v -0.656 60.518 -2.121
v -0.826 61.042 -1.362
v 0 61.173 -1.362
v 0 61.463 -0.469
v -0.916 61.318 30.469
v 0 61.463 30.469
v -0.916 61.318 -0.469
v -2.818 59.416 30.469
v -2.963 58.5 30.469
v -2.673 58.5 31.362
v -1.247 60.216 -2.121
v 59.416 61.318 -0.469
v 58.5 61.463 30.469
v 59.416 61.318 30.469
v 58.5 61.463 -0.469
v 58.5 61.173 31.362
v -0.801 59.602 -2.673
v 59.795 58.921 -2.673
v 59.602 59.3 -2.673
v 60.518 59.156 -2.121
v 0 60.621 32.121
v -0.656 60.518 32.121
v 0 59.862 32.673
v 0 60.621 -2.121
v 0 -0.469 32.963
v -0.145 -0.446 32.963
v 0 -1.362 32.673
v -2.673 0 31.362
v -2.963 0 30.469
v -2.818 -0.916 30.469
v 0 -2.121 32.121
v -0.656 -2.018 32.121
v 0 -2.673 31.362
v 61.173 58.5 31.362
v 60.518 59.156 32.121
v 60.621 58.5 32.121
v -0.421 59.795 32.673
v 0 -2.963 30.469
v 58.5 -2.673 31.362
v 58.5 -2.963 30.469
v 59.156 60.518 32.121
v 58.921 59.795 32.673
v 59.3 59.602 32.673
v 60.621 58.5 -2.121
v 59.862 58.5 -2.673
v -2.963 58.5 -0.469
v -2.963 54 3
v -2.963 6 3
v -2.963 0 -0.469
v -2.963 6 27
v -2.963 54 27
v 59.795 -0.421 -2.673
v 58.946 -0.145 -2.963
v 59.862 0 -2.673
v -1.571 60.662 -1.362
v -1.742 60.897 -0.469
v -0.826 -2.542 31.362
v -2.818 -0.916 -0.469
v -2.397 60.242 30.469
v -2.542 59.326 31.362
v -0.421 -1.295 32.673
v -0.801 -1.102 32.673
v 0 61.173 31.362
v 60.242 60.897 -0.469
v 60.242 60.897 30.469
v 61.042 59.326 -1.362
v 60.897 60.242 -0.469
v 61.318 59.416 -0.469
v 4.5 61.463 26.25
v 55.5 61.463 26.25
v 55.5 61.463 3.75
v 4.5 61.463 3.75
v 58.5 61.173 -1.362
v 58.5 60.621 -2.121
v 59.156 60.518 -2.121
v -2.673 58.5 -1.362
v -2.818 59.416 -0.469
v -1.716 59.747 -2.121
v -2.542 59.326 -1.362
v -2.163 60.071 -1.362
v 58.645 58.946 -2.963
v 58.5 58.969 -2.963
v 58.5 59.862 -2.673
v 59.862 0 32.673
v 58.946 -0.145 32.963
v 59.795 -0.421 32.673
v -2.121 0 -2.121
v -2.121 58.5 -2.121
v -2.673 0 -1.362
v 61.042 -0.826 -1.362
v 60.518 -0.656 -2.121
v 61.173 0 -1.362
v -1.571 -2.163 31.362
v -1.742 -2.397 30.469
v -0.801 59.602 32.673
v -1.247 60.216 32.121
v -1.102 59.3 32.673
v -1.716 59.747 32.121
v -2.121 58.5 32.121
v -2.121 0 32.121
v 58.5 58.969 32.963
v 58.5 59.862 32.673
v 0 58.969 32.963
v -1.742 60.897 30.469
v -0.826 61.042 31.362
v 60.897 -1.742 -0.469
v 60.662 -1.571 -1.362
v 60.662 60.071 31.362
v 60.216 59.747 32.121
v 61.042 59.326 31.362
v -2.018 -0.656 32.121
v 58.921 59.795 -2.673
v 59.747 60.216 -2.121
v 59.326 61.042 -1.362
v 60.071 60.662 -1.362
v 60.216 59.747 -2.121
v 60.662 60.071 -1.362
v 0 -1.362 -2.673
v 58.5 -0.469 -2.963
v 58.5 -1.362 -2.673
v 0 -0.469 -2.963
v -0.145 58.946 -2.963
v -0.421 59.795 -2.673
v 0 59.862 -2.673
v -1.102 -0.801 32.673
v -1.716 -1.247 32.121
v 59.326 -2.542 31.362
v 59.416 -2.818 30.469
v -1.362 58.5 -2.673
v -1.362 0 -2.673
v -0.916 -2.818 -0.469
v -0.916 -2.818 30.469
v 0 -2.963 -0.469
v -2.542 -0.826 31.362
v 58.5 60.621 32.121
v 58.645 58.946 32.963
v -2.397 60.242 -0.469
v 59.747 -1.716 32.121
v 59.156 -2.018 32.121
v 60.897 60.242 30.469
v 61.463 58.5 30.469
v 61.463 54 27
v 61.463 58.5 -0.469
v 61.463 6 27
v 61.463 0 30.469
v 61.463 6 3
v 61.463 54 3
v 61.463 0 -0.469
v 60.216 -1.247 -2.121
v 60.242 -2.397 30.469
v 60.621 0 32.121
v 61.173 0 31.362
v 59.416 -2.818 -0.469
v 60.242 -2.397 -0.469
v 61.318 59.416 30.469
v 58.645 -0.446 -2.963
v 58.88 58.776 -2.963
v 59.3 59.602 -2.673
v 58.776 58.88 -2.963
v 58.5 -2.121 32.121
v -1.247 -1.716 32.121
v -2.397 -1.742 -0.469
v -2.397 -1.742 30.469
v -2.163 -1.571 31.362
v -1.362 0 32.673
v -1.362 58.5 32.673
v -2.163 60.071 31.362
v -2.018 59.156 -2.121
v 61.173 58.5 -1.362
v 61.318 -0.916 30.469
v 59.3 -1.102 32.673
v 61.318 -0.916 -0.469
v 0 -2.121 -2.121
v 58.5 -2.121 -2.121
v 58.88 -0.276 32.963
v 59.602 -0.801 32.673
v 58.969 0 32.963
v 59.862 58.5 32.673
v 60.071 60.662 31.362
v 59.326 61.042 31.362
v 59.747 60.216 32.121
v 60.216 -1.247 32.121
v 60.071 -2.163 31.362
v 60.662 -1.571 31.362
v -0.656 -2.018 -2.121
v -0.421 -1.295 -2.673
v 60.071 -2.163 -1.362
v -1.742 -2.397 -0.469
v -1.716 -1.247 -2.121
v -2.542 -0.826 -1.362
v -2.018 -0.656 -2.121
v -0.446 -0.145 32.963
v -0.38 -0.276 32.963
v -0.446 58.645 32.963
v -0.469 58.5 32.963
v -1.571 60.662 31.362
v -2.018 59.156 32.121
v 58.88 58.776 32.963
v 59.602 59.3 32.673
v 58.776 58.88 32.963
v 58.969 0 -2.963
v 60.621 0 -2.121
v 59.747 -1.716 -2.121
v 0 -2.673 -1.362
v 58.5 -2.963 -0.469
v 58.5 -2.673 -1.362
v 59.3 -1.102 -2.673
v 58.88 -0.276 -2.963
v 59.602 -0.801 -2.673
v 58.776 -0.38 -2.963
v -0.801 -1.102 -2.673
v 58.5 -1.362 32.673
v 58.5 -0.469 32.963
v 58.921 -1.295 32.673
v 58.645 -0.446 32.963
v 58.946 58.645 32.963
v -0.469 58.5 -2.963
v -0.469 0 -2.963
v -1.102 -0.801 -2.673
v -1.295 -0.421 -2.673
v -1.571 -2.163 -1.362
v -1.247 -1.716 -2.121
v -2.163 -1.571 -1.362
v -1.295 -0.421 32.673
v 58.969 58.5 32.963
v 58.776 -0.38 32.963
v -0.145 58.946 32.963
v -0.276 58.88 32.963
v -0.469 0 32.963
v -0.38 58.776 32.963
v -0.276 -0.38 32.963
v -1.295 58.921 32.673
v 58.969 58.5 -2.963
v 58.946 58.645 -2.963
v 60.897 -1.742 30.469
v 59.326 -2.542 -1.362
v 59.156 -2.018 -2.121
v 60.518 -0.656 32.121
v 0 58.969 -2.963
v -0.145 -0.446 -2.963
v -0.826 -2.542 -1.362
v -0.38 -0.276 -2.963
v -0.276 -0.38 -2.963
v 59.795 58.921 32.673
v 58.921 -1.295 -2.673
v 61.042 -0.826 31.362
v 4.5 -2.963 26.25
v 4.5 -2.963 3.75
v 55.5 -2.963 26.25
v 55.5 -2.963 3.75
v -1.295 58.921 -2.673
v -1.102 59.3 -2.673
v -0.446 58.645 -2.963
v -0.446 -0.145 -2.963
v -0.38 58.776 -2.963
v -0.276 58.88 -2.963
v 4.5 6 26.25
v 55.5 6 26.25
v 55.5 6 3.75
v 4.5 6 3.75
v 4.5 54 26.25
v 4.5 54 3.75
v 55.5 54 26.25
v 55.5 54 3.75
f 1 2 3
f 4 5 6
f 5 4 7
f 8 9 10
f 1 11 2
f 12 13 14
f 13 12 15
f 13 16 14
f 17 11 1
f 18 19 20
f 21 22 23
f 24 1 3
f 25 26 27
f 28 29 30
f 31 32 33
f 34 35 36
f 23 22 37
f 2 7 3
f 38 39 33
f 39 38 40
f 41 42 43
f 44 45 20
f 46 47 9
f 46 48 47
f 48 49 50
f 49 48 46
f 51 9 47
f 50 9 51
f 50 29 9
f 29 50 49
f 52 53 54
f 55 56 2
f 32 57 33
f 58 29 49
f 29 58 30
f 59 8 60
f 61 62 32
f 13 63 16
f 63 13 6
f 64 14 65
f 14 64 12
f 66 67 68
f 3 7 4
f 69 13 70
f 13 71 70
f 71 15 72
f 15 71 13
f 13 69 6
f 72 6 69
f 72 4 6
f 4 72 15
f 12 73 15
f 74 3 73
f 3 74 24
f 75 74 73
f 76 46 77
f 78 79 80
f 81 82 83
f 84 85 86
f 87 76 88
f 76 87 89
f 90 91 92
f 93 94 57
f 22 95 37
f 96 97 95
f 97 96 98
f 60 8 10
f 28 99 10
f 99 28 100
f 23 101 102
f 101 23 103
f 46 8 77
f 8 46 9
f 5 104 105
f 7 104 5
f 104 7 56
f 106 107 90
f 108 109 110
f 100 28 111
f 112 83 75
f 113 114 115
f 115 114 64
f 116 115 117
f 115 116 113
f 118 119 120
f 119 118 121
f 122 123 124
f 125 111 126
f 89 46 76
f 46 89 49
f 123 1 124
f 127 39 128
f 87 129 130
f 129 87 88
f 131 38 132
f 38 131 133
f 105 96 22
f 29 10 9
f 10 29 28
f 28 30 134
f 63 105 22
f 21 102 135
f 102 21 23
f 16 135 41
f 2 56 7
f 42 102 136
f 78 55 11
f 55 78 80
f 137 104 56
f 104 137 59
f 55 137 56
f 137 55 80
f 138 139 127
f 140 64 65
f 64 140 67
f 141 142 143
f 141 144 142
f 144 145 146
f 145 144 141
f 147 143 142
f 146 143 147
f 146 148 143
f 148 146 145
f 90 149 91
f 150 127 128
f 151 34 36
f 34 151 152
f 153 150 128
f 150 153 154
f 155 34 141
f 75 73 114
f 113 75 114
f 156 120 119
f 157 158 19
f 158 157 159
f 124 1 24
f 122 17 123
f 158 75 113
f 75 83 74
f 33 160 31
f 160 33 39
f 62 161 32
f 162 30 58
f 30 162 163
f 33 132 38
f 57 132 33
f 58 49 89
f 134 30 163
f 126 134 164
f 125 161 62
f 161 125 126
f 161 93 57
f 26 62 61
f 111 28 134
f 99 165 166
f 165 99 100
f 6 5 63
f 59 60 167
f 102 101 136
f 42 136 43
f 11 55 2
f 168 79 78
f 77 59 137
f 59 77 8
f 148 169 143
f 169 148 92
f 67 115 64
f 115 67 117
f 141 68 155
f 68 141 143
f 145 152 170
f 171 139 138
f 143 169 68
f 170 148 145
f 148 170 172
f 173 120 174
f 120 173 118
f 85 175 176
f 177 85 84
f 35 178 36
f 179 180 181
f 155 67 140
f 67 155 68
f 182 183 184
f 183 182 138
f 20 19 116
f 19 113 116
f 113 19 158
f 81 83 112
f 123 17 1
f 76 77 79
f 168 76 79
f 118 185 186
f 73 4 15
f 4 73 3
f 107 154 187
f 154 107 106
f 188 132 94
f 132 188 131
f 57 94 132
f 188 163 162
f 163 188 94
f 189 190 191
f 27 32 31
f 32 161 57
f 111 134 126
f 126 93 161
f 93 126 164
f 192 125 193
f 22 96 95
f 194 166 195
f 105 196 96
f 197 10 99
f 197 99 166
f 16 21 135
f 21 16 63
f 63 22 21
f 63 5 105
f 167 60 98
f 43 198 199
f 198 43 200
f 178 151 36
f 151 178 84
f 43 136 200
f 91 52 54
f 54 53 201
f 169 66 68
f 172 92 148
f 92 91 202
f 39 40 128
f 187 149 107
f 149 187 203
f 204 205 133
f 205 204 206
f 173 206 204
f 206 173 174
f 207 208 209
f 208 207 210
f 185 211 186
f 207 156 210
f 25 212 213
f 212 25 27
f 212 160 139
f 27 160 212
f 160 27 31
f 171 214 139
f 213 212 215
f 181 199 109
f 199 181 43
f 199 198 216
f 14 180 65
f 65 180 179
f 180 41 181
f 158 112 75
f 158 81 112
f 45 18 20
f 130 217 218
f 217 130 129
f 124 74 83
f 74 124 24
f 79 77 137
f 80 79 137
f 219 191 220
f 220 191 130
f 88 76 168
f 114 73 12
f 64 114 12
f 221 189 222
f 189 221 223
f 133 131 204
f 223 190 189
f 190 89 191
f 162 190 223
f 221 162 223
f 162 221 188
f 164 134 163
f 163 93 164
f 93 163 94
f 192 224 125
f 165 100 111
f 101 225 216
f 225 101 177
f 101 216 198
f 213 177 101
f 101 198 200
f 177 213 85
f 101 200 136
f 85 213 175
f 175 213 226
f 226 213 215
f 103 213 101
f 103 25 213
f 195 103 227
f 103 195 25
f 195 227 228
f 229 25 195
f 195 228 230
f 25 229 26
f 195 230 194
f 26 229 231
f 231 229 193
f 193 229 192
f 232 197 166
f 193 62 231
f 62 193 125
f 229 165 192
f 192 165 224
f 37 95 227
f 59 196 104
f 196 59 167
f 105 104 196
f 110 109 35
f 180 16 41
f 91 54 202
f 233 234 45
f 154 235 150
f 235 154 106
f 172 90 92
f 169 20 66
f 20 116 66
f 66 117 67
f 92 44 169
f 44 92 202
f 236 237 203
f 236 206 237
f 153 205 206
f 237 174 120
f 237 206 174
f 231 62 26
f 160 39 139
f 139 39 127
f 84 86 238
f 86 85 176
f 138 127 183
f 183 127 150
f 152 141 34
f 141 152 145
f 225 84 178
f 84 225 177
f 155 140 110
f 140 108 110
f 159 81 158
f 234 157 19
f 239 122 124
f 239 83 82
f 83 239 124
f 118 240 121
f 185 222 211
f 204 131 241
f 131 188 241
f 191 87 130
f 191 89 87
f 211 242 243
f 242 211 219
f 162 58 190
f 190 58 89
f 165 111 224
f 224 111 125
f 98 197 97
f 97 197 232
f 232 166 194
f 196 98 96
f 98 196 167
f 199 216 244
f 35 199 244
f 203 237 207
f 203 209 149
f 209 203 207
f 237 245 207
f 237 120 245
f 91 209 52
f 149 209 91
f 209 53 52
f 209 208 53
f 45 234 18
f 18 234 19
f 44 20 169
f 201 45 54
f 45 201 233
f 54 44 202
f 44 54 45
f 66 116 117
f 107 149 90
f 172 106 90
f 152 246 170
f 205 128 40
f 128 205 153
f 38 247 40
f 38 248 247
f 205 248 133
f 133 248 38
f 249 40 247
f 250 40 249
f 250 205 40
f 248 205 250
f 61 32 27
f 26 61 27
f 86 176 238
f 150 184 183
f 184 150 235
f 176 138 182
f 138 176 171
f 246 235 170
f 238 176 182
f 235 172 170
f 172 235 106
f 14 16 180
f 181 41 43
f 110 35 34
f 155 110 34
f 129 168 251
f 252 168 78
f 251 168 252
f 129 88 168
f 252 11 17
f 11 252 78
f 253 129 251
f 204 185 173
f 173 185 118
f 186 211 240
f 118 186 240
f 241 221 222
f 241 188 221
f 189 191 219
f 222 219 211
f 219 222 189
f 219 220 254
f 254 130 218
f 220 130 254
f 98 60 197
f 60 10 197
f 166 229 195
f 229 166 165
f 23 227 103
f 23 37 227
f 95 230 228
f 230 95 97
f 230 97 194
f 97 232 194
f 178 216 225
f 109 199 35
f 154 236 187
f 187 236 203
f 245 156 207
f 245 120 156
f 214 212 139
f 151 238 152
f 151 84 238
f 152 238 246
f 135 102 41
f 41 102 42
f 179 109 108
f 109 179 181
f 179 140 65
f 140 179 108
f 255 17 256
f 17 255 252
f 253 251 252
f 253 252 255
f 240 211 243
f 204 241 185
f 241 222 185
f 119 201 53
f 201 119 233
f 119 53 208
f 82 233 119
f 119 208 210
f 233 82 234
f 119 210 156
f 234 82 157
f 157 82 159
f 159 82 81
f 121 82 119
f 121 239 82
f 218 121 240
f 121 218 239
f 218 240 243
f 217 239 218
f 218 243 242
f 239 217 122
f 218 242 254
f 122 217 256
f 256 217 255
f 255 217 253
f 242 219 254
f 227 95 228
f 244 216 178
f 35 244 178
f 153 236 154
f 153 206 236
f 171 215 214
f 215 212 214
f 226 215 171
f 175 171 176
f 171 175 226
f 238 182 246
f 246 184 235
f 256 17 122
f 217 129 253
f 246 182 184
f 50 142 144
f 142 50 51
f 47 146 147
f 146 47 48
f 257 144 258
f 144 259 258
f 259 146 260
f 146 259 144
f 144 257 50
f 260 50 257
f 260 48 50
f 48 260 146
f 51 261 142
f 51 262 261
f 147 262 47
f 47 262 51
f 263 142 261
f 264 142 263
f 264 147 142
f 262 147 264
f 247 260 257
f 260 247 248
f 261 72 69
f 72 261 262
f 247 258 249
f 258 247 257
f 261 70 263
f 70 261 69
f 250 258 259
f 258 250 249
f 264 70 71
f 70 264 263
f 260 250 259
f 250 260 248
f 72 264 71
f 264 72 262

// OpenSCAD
// file: ../../../../../basics/rounded-edges/rounded-cube/rounded-cube.scad
/**
 *
 *  some parts of this software were inspired by
 *
 * 	     http://www.thingiverse.com/thing:9347
 *
 */

/**
 * makes a rounded cube
 */
module roundedCube(cornerRadius=4,
				   cubeCentered=false,
				   sides=30,
				   sidesOnly=false,
				   size=[20,20,2])
{
    $fn=sides;

    x = size[0] - cornerRadius/2;
    y = size[1] - cornerRadius/2;
    z = size[2];

    minkowski(size, cornerRadius)
    {
        cube(size=[x,y,z], center=cubeCentered);

        if(sidesOnly)
        {
            cylinder(r=cornerRadius);
        }
        else
        {
            sphere(r=cornerRadius);
        }
    };
}
// file: ../../../../../basics/rounded-edges/rounded-cube-enclosure/rounded-cube-enclosure.scad
use <../rounded-cube/rounded-cube.scad>

module roundedCubeEnclosure(boardLengthX,
					 		boardLengthY,
					 		boardLengthZ,
							cornerRadius,
							xAxisCutout_yPercentage,
							xAxisCutout_zPercentage,
							yAxisCutout_xPercentage,
							yAxisCutout_zPercentage)
{
	size = [boardLengthX, boardLengthY, boardLengthZ];

	difference()
	{
		roundedCube(cornerRadius = cornerRadius,
					size=size,
		            sides=5,
		            sides=20);

		// x axis cutout
		xAxisCutout_xLength = boardLengthX * 1.2;
		xAxisCutout_yLength = boardLengthY * xAxisCutout_yPercentage;
		xAxisCutout_zLength = boardLengthZ * xAxisCutout_zPercentage;
		xAxisCutout_xTranslate = -0.09 * boardLengthX;
		xAxisCutout_yTranslate = boardLengthY / 2.0 - xAxisCutout_yLength / 2.0;
		xAxisCutout_zTranslate = boardLengthZ / 2.0 - xAxisCutout_zLength / 2.0;
		color("blue")
		translate([xAxisCutout_xTranslate,
				   xAxisCutout_yTranslate,
				   xAxisCutout_zTranslate])
		cube([xAxisCutout_xLength,
			  xAxisCutout_yLength,
			  xAxisCutout_zLength]);

	  	// y axis cutout
		yAxisCutout_xLength = boardLengthX * yAxisCutout_xPercentage;
		yAxisCutout_yLength = boardLengthY * 1.2;
		yAxisCutout_zLength = boardLengthZ * yAxisCutout_zPercentage;
		yAxisCutout_xTranslate = boardLengthX / 2.0 - yAxisCutout_xLength / 2.0;
		yAxisCutout_yTranslate = boardLengthY / 2.0 - yAxisCutout_yLength / 2.0;
		yAxisCutout_zTranslate = boardLengthZ / 2.0 - yAxisCutout_zLength / 2.0;
		color("green")
		translate([yAxisCutout_xTranslate,
				   yAxisCutout_yTranslate,
				   yAxisCutout_zTranslate])
		cube([yAxisCutout_xLength,
			  yAxisCutout_yLength,
			  yAxisCutout_zLength]);
	}
}
// main file
use <../../../../../basics/rounded-edges/rounded-cube-enclosure/rounded-cube-enclosure.scad>

roundedCubeEnclosure(boardLengthX = 60,
                    boardLengthY = 60,
                    boardLengthZ = 30,
                    cornerRadius = 3,
                    xAxisCutout_yPercentage = 0.8,
                    xAxisCutout_zPercentage = 0.8,
                    yAxisCutout_xPercentage = 0.85,
                    yAxisCutout_zPercentage = 0.75);
